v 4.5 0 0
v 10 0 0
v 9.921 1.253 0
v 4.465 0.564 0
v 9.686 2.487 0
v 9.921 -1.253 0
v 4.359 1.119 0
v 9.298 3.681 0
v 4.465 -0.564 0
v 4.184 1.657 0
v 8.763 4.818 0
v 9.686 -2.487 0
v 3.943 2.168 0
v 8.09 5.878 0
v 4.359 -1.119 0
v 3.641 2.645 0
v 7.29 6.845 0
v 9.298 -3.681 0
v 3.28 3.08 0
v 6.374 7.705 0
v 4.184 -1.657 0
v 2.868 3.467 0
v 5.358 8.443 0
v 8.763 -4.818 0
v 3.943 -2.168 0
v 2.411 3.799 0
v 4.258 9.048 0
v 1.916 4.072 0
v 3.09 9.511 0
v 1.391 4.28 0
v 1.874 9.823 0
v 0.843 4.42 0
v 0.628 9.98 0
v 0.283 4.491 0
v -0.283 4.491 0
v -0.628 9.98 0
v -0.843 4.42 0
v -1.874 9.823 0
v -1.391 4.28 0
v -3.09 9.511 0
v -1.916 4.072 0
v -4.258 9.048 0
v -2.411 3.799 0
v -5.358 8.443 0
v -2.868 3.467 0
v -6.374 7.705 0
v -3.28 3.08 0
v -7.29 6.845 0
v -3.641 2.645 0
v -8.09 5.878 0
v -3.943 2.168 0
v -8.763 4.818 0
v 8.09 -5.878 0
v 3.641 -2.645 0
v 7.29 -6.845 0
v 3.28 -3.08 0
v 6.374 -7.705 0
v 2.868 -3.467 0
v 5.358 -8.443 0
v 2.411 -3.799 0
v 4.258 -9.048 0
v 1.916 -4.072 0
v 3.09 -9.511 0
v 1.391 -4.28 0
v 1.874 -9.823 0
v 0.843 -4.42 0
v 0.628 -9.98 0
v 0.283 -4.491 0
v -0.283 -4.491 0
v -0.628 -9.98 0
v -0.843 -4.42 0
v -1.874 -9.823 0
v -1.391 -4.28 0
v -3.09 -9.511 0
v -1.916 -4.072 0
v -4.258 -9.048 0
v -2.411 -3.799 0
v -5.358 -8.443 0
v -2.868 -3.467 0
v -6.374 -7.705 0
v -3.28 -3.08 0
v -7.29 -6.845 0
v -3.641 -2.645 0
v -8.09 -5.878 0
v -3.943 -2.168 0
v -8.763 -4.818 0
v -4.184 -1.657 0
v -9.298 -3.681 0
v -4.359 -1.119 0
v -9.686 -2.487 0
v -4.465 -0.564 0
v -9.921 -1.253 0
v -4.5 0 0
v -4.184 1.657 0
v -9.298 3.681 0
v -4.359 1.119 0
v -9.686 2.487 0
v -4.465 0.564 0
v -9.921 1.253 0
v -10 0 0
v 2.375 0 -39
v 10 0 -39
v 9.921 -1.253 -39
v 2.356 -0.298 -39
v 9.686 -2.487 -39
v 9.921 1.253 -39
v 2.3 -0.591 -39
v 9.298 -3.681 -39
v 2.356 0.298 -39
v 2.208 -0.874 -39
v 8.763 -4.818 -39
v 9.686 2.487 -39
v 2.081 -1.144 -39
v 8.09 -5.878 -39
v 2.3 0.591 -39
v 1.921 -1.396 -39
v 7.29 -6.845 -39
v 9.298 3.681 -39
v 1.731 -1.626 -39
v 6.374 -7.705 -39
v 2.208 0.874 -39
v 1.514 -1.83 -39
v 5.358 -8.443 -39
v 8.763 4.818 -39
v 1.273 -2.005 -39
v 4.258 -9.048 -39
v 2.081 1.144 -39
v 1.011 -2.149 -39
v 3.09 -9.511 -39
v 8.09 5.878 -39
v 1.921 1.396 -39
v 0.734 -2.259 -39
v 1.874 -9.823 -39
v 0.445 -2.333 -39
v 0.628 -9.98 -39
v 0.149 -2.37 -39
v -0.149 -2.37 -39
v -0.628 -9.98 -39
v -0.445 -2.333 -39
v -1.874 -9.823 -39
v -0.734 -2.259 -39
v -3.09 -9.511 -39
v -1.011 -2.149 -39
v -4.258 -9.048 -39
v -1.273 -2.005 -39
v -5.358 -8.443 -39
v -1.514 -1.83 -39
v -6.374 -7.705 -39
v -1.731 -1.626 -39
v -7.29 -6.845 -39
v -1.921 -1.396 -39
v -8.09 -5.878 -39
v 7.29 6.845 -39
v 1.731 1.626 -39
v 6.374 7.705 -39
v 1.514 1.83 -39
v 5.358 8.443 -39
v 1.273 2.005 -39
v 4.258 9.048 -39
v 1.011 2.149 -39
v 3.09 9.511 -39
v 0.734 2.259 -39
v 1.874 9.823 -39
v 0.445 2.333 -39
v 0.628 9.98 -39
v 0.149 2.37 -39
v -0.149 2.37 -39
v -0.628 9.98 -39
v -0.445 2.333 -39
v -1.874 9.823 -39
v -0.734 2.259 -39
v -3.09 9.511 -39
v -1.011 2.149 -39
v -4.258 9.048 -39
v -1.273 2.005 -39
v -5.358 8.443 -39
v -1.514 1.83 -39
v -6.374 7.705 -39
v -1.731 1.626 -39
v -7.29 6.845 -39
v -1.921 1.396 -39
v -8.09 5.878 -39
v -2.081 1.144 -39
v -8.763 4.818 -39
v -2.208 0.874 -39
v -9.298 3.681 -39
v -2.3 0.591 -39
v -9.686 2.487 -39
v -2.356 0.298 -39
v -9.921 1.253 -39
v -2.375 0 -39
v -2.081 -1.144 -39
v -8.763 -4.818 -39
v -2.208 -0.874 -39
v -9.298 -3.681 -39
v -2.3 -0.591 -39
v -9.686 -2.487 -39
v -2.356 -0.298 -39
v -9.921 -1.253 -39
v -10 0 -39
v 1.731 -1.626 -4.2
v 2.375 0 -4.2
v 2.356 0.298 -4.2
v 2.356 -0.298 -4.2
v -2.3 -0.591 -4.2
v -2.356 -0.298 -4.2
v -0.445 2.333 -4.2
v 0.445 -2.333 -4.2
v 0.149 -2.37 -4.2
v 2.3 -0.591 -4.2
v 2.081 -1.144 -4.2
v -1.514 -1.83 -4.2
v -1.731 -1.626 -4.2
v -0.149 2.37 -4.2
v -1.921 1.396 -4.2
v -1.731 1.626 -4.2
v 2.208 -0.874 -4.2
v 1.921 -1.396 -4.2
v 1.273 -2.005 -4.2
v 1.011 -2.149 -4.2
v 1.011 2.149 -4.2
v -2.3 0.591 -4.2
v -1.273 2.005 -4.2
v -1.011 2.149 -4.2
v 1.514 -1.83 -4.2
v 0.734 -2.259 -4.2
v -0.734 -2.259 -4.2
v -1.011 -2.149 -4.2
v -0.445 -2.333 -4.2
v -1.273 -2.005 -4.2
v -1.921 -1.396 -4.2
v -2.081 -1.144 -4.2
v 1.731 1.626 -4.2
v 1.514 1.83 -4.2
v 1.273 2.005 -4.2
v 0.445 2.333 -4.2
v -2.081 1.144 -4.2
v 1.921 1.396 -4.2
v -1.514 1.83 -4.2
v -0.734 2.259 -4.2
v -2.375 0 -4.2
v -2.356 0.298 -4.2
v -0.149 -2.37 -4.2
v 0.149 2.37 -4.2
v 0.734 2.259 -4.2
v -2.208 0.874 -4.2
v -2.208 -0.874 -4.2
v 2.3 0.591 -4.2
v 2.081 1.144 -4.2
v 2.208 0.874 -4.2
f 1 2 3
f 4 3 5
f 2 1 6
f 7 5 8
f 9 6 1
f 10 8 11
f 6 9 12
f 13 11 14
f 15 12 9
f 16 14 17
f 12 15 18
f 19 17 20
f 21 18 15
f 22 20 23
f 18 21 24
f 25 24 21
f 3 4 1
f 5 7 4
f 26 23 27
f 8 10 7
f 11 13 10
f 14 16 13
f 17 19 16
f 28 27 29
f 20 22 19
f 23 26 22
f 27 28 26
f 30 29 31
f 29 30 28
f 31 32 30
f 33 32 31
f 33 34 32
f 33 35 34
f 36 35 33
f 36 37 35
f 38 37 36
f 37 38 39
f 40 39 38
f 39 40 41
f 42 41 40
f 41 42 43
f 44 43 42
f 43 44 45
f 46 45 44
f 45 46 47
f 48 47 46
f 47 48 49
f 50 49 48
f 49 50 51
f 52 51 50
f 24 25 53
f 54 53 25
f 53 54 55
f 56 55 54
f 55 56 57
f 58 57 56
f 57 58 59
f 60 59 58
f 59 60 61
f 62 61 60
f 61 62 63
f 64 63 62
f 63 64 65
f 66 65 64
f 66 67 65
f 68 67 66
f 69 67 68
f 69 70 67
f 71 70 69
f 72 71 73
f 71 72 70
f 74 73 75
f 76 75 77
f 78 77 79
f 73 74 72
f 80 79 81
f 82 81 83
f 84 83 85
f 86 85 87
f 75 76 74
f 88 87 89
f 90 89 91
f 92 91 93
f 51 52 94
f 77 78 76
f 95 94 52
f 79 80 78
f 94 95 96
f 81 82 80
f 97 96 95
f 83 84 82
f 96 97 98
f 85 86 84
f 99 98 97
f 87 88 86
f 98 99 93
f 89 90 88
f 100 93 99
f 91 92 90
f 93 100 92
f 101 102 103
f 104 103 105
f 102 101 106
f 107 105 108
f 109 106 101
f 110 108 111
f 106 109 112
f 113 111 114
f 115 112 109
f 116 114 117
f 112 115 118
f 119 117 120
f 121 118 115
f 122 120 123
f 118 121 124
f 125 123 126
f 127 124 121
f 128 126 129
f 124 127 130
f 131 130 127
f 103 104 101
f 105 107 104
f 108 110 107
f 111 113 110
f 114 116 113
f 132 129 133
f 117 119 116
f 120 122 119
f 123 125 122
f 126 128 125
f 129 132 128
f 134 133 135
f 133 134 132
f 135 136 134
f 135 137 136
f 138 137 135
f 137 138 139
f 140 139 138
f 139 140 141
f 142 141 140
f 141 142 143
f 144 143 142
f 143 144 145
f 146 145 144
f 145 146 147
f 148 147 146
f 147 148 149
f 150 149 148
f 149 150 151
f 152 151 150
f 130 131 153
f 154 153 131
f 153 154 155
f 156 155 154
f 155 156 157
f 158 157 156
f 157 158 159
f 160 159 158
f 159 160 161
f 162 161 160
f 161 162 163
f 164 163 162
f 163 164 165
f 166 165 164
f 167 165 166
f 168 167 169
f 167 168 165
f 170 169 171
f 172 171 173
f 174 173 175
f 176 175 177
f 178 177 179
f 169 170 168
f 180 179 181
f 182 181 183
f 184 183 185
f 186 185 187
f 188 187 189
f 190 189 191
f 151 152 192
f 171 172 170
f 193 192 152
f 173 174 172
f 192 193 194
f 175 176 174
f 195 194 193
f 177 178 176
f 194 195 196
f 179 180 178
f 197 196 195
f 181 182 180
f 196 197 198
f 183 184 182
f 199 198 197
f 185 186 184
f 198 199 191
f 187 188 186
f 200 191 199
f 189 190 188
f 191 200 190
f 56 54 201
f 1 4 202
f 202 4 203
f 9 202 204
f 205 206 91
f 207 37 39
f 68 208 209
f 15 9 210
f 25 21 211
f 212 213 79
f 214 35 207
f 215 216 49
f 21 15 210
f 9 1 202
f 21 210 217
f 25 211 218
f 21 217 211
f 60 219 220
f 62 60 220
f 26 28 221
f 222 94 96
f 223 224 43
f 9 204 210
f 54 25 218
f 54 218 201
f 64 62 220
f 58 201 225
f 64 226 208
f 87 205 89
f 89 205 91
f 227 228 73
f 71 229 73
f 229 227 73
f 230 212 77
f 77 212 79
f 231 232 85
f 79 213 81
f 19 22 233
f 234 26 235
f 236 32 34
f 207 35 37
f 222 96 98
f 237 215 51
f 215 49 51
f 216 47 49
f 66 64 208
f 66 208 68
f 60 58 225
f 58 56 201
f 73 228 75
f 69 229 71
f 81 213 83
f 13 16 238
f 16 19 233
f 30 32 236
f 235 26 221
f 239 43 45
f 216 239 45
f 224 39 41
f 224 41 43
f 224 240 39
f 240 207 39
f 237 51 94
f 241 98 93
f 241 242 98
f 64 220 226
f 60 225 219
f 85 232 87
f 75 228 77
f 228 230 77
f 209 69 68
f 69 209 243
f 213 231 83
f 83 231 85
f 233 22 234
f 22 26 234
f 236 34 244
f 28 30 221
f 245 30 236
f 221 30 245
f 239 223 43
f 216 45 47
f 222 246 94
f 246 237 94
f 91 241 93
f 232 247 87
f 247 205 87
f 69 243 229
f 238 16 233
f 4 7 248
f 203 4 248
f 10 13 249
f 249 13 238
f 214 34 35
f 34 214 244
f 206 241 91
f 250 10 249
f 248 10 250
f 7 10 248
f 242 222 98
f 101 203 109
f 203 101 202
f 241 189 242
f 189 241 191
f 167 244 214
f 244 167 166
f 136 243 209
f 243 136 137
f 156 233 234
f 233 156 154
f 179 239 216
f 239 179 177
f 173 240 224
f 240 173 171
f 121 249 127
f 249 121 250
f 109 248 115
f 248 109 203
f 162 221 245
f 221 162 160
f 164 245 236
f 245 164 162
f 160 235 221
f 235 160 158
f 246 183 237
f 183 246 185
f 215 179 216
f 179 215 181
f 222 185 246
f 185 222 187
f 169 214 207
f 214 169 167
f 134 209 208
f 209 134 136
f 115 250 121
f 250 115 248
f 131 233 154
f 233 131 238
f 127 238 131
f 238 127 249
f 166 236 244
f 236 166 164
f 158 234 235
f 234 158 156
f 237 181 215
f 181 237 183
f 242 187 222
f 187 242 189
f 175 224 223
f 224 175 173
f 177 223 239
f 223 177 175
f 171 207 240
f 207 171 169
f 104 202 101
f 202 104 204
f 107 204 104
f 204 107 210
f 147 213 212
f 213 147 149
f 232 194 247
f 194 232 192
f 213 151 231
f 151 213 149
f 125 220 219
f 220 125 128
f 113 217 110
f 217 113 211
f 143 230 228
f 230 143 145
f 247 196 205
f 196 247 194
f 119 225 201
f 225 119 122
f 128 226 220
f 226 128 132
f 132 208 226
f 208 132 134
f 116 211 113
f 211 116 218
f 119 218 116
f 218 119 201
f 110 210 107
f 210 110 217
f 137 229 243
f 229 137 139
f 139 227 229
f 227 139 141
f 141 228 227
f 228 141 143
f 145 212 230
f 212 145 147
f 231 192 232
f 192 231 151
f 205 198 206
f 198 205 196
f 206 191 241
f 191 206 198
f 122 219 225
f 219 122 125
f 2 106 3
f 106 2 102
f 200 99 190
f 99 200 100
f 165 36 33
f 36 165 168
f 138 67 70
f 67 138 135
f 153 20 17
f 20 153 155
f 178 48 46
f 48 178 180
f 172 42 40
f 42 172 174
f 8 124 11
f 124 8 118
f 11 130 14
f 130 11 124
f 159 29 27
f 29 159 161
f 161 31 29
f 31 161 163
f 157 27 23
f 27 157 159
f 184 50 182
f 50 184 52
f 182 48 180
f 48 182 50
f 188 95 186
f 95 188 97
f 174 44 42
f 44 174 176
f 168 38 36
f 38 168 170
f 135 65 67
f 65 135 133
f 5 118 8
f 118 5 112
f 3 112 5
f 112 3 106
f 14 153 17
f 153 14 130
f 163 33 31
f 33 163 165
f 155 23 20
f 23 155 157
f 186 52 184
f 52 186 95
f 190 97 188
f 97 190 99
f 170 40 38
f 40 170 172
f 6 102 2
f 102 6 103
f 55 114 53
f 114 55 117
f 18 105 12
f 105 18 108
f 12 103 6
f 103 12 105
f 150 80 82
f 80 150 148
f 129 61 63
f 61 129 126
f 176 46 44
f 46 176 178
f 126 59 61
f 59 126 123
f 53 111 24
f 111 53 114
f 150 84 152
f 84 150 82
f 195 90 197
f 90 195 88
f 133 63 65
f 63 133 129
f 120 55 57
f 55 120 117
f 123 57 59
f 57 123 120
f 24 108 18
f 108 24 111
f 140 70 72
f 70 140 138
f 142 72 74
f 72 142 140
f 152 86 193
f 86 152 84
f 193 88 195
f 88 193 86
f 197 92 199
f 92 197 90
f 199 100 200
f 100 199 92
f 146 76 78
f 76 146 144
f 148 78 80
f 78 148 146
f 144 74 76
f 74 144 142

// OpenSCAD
$fn = 50;


difference() {
	union() {
		translate(v = [0, 0, -39.0000000000]) {
			cylinder(h = 39, r = 10.0000000000);
		}
		cylinder(h = 0, r = 16.0000000000);
	}
	union() {
		translate(v = [0, 0, 0]) {
			rotate(a = [0, 0, 0]) {
				difference() {
					union() {
						#translate(v = [0, 0, -39.0000000000]) {
							cylinder(h = 39, r = 2.2500000000);
						}
						#translate(v = [0, 0, -4.2000000000]) {
							cylinder(h = 4.2000000000, r1 = 2.3750000000, r2 = 4.5000000000);
						}
						#translate(v = [0, 0, -39.0000000000]) {
							cylinder(h = 39, r = 2.3750000000);
						}
						#translate(v = [0, 0, -39.0000000000]) {
							cylinder(h = 39, r = 2.2500000000);
						}
					}
					union();
				}
			}
		}
	}
}
